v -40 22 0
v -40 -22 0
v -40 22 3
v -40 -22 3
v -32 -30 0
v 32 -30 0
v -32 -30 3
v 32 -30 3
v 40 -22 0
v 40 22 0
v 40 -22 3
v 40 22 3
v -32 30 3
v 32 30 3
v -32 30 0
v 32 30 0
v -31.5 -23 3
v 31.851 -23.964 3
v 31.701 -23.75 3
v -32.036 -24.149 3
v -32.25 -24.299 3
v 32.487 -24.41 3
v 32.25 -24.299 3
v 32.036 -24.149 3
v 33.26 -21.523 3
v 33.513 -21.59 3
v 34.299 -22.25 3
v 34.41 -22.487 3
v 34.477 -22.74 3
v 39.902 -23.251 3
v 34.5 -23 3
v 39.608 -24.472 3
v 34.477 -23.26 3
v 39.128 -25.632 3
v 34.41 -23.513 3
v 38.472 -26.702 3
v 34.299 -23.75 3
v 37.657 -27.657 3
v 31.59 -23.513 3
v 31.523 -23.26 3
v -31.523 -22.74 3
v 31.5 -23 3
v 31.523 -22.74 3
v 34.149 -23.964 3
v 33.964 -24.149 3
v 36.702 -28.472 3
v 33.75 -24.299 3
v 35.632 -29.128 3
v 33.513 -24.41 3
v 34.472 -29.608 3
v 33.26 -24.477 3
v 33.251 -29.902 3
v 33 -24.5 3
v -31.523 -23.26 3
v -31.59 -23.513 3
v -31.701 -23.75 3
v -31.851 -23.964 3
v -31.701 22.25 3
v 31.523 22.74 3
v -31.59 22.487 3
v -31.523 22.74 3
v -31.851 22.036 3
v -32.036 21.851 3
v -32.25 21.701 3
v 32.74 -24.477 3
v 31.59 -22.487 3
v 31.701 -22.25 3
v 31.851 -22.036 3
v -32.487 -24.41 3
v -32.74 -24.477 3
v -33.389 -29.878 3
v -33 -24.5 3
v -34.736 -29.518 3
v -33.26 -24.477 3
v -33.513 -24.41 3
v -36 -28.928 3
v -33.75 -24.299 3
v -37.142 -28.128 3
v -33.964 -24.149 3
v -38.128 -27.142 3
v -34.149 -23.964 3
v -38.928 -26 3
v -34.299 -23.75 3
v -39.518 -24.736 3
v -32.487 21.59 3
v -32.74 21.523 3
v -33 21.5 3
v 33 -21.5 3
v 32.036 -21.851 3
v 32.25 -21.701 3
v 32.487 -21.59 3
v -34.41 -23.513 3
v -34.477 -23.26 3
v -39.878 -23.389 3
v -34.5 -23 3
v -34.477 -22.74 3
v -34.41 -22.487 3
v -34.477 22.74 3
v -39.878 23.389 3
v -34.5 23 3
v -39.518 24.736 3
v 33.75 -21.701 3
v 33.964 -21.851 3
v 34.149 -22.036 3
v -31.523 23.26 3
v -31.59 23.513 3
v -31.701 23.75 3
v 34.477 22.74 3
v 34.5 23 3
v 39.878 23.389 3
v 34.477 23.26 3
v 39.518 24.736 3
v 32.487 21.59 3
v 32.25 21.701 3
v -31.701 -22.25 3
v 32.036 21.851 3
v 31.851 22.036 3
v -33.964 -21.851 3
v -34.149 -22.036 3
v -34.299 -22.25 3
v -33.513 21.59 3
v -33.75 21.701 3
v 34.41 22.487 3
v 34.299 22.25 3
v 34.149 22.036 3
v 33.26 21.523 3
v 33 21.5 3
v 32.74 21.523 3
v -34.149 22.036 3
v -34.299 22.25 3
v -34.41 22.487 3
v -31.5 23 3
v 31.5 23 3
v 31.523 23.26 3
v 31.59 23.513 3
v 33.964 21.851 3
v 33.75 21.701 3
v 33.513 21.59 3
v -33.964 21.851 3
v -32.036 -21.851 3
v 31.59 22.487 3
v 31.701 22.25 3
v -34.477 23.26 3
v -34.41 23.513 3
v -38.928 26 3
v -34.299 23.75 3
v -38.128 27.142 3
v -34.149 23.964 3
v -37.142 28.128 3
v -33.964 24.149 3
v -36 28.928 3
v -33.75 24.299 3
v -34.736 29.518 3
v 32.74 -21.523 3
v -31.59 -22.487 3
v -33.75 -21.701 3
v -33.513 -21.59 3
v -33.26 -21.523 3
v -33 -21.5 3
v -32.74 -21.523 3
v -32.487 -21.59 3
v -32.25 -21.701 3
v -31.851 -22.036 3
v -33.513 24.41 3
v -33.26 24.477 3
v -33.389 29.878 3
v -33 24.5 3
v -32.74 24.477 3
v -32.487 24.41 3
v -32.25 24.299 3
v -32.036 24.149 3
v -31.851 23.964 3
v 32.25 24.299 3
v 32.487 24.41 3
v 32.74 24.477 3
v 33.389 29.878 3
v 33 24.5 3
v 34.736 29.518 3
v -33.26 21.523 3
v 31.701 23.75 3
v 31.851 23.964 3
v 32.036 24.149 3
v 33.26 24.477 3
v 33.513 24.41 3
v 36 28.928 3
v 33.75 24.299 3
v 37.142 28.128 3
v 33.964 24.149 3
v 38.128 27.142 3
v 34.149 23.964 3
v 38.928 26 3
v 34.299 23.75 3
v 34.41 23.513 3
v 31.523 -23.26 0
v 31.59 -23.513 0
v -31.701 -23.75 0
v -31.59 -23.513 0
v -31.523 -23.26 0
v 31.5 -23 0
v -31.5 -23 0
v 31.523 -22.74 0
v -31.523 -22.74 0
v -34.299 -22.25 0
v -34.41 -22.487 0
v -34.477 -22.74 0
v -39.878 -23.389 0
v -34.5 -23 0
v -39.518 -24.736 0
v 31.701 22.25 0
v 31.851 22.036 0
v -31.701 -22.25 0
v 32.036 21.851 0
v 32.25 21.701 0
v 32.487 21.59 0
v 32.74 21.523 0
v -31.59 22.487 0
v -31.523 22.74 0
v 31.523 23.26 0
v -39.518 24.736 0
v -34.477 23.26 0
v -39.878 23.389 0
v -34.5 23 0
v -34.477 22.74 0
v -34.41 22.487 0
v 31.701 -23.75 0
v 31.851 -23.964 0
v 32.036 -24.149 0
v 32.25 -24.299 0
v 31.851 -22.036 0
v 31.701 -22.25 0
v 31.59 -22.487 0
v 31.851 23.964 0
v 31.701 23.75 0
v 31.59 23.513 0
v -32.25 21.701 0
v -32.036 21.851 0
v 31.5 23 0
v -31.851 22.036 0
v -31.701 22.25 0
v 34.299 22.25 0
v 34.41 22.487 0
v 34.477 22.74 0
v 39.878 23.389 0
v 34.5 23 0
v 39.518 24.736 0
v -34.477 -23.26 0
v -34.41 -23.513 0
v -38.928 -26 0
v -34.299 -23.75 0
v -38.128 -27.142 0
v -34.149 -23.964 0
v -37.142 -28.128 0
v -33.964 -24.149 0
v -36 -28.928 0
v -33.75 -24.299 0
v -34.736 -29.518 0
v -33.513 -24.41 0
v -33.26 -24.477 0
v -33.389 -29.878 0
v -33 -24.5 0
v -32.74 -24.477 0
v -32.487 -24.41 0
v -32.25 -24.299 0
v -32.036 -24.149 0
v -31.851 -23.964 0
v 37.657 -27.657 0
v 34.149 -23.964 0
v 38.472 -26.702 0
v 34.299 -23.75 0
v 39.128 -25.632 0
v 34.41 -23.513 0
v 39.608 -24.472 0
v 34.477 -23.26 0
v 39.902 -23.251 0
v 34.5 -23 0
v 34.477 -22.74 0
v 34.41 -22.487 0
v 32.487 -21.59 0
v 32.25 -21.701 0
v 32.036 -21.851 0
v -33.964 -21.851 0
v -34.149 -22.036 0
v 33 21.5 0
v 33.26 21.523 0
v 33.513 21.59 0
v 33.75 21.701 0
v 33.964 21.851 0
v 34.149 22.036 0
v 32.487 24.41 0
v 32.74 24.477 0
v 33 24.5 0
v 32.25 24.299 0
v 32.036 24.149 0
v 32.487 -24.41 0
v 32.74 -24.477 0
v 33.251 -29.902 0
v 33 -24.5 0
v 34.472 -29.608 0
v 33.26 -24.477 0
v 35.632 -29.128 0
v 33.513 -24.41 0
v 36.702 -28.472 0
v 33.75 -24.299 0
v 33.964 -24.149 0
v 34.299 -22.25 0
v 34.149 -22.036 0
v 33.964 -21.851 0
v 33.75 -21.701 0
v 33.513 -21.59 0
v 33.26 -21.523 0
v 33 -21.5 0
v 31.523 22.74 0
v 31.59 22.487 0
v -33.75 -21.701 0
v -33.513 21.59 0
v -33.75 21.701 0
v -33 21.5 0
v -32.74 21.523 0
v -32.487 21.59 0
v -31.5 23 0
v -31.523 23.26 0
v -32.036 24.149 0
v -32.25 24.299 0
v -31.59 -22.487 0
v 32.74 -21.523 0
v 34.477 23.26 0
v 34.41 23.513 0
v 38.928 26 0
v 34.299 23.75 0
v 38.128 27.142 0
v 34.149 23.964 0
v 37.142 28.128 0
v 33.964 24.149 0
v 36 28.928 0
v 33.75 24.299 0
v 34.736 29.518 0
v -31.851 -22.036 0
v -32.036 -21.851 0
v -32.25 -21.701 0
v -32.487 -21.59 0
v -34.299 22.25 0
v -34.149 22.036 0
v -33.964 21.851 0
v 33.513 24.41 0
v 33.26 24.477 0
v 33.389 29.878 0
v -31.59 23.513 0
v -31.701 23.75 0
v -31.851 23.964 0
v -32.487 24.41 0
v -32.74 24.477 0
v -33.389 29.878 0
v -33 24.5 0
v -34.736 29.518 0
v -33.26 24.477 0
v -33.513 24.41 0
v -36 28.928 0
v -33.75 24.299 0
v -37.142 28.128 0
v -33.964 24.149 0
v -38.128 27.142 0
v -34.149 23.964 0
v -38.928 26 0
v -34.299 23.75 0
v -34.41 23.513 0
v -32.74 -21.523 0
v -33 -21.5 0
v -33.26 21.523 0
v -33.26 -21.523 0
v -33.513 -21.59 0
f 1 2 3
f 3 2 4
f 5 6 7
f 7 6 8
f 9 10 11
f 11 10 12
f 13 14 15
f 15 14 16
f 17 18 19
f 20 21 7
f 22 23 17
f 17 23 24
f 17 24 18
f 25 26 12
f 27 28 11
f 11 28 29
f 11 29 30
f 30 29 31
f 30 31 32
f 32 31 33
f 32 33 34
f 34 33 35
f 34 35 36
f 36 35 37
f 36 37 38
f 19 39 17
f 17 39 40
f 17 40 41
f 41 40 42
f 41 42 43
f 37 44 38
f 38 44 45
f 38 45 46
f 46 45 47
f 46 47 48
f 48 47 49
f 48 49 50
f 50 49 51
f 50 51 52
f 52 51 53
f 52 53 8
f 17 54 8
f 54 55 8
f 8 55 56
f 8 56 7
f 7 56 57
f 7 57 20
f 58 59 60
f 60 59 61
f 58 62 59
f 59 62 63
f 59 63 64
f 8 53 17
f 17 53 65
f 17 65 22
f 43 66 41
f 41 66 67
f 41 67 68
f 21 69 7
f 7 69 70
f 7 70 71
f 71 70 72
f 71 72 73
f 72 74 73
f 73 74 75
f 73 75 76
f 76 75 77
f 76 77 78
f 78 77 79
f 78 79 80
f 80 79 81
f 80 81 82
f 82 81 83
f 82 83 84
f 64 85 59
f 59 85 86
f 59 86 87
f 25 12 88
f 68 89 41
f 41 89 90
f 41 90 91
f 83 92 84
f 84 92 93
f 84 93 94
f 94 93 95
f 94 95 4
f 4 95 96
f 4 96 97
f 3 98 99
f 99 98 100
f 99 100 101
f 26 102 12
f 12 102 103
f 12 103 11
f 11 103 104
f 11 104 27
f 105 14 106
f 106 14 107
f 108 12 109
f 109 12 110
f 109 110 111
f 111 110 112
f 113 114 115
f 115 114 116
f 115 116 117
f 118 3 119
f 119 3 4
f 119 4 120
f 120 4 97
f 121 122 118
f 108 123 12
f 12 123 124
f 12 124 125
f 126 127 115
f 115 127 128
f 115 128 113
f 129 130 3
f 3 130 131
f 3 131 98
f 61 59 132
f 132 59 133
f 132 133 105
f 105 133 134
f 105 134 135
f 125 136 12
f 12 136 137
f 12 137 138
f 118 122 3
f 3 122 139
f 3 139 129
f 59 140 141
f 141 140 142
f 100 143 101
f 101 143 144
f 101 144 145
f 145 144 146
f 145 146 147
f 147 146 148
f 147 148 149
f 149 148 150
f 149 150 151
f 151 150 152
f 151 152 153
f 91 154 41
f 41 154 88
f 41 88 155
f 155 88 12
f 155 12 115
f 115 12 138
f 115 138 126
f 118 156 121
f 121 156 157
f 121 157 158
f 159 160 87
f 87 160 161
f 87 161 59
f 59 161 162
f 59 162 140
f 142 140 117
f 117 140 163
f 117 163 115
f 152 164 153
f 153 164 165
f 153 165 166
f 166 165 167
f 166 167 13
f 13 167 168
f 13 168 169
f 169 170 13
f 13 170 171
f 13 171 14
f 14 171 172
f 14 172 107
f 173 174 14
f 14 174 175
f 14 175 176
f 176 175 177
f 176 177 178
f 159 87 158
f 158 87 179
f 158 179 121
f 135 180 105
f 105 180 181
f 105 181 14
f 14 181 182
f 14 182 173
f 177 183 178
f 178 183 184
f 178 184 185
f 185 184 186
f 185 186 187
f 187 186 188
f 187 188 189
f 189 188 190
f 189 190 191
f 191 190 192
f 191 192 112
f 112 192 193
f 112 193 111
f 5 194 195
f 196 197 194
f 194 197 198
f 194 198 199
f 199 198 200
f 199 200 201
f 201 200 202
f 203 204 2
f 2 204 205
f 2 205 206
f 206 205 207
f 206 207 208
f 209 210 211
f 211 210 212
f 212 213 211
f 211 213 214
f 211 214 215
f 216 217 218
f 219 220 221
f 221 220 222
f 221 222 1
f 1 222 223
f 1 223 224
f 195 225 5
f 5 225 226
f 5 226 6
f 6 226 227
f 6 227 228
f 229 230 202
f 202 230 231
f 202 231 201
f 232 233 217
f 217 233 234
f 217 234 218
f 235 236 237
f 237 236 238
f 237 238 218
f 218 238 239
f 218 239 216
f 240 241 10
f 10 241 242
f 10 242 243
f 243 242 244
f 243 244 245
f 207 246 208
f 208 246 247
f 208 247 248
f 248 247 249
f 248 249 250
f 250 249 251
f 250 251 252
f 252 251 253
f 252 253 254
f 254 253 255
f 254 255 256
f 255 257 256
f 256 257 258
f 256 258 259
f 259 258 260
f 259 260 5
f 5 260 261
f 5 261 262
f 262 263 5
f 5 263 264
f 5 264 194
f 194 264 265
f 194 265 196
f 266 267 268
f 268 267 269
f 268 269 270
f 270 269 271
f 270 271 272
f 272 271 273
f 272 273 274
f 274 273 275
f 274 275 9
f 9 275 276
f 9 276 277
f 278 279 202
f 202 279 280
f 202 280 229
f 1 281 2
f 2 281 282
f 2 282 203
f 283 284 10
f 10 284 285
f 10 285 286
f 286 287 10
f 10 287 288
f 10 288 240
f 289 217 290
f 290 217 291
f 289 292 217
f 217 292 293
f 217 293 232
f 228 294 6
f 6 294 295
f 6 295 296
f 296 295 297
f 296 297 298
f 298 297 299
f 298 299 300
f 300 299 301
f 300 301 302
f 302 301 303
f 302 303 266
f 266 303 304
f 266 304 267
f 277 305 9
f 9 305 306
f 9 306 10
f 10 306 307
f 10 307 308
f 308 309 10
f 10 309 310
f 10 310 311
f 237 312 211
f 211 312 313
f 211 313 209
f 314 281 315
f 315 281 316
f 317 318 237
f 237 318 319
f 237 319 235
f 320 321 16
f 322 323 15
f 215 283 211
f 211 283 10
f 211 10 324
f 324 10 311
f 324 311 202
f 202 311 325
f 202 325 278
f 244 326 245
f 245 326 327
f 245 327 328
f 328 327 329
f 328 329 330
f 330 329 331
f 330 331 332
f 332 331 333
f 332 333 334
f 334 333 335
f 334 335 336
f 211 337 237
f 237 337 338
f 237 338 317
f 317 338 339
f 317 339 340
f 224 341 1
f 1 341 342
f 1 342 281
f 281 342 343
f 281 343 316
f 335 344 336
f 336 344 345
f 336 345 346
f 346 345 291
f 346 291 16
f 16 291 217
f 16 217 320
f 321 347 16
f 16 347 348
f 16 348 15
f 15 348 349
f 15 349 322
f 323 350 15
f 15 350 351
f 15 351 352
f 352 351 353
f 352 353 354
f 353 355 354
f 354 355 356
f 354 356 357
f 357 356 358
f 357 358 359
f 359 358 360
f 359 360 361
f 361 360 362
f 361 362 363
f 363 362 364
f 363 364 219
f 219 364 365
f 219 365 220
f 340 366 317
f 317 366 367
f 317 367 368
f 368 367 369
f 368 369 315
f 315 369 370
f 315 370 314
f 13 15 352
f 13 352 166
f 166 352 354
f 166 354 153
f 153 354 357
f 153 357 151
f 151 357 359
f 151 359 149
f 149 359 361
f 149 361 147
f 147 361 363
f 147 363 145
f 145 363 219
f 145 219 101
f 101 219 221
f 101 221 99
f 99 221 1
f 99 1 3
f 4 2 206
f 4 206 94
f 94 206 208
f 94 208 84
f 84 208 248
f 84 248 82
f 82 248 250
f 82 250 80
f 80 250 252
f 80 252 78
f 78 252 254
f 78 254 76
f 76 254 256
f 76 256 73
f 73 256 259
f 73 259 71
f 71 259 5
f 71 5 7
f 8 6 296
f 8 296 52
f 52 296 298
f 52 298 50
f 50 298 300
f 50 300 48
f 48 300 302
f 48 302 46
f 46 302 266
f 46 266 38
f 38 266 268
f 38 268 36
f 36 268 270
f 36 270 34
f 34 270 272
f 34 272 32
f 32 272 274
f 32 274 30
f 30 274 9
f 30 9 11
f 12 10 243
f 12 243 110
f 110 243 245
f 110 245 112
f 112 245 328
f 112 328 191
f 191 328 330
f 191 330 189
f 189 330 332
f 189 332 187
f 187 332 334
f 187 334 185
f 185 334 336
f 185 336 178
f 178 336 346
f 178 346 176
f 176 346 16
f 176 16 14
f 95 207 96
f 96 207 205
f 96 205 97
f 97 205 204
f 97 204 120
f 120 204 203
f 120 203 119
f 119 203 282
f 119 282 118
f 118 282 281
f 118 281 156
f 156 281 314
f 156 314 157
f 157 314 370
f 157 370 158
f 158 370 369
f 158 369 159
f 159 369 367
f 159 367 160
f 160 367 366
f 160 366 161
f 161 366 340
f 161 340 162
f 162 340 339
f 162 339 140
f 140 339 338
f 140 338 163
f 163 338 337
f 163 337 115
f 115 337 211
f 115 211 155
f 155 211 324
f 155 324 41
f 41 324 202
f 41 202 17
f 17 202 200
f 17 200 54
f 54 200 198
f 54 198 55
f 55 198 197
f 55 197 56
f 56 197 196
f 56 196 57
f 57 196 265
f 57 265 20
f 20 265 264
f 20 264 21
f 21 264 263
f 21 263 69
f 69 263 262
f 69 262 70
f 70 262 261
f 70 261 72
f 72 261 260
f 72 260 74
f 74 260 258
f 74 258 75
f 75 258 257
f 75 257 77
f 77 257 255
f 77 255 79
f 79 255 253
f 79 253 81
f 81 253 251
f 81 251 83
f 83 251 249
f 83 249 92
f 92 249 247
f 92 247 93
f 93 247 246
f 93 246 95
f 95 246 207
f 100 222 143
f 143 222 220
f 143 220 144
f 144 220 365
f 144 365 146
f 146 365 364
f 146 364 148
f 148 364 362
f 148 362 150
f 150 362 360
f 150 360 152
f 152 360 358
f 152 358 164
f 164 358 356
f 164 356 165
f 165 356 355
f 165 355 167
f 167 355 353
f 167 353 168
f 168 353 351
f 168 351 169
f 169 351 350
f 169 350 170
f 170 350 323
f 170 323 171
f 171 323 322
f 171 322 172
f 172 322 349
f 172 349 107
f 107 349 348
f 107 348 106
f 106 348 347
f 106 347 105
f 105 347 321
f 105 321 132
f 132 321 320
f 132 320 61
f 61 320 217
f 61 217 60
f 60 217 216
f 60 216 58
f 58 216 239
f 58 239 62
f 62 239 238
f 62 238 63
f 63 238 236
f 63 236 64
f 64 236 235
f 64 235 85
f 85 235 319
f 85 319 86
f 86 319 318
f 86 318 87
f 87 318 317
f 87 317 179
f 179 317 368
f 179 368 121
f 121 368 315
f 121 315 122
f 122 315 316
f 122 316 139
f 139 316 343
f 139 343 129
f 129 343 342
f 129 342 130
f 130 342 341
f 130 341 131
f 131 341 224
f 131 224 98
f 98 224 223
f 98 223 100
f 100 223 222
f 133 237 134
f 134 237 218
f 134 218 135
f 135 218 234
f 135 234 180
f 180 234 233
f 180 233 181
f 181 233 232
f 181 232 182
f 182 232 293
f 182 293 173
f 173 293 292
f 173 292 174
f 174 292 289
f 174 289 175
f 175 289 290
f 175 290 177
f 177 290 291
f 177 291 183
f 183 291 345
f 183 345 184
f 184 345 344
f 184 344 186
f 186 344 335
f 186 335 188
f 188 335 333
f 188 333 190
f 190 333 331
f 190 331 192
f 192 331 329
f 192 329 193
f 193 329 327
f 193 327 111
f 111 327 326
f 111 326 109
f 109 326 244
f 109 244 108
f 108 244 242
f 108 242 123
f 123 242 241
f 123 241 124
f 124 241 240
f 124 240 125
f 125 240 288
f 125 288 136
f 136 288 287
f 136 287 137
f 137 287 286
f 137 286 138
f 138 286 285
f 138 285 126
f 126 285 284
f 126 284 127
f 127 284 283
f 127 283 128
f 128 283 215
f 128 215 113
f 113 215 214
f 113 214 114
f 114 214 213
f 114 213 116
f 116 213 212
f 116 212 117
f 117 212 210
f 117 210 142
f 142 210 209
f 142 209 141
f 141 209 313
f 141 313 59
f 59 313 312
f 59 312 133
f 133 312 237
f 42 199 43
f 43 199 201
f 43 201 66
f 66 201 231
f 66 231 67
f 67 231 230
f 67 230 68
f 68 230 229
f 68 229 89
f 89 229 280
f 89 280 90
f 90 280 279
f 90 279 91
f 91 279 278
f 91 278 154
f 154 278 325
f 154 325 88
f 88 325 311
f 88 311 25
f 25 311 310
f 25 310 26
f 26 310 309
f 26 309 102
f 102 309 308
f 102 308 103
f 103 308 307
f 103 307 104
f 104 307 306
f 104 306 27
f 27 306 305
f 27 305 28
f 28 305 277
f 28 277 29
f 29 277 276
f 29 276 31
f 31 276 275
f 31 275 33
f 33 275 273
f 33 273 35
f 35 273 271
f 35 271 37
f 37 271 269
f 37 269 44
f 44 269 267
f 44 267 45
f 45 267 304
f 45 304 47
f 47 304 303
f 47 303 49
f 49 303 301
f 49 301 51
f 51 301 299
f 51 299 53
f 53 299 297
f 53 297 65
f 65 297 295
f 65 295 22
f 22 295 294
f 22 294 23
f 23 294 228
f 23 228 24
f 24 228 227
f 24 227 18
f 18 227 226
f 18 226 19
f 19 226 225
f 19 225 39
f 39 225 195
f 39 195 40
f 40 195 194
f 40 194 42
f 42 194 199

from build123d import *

# Parameters (mm, degrees)
SKETCH1_W           = 80
SKETCH1_H           = 60
BOSS_EXTRUDE1_DEPTH = 3
FILLET1_R           = 8
SKETCH2_R           = 1.5
CUT_EXTRUDE1_DEPTH  = 3


with BuildPart() as part:
    # Sketch1 → Boss-Extrude1 (new body)
    with BuildSketch(Plane.XY):
        Rectangle(SKETCH1_W, SKETCH1_H)
    extrude(amount=BOSS_EXTRUDE1_DEPTH)

    # Fillet1
    fillet1_edges = [part.edges().sort_by_distance(p)[0] for p in [
        (-40, 30, 1.5),
        (40, 30, 1.5),
        (40, -30, 1.5),
        (-40, -30, 1.5),
    ]]
    fillet(fillet1_edges, radius=FILLET1_R)

    # Sketch2 → Cut-Extrude1 (cut)
    with BuildSketch(Plane(origin=(0, 0, 0), x_dir=(-1, 0, 0), z_dir=(0, 0, -1))):
        with Locations((33, -23)):
            Circle(SKETCH2_R)
        with Locations((33, 23)):
            Circle(SKETCH2_R)
        with Locations((-33, 23)):
            Circle(SKETCH2_R)
        with Locations((-33, -23)):
            Circle(SKETCH2_R)
    extrude(amount=-CUT_EXTRUDE1_DEPTH, mode=Mode.SUBTRACT)


solid = part.part
